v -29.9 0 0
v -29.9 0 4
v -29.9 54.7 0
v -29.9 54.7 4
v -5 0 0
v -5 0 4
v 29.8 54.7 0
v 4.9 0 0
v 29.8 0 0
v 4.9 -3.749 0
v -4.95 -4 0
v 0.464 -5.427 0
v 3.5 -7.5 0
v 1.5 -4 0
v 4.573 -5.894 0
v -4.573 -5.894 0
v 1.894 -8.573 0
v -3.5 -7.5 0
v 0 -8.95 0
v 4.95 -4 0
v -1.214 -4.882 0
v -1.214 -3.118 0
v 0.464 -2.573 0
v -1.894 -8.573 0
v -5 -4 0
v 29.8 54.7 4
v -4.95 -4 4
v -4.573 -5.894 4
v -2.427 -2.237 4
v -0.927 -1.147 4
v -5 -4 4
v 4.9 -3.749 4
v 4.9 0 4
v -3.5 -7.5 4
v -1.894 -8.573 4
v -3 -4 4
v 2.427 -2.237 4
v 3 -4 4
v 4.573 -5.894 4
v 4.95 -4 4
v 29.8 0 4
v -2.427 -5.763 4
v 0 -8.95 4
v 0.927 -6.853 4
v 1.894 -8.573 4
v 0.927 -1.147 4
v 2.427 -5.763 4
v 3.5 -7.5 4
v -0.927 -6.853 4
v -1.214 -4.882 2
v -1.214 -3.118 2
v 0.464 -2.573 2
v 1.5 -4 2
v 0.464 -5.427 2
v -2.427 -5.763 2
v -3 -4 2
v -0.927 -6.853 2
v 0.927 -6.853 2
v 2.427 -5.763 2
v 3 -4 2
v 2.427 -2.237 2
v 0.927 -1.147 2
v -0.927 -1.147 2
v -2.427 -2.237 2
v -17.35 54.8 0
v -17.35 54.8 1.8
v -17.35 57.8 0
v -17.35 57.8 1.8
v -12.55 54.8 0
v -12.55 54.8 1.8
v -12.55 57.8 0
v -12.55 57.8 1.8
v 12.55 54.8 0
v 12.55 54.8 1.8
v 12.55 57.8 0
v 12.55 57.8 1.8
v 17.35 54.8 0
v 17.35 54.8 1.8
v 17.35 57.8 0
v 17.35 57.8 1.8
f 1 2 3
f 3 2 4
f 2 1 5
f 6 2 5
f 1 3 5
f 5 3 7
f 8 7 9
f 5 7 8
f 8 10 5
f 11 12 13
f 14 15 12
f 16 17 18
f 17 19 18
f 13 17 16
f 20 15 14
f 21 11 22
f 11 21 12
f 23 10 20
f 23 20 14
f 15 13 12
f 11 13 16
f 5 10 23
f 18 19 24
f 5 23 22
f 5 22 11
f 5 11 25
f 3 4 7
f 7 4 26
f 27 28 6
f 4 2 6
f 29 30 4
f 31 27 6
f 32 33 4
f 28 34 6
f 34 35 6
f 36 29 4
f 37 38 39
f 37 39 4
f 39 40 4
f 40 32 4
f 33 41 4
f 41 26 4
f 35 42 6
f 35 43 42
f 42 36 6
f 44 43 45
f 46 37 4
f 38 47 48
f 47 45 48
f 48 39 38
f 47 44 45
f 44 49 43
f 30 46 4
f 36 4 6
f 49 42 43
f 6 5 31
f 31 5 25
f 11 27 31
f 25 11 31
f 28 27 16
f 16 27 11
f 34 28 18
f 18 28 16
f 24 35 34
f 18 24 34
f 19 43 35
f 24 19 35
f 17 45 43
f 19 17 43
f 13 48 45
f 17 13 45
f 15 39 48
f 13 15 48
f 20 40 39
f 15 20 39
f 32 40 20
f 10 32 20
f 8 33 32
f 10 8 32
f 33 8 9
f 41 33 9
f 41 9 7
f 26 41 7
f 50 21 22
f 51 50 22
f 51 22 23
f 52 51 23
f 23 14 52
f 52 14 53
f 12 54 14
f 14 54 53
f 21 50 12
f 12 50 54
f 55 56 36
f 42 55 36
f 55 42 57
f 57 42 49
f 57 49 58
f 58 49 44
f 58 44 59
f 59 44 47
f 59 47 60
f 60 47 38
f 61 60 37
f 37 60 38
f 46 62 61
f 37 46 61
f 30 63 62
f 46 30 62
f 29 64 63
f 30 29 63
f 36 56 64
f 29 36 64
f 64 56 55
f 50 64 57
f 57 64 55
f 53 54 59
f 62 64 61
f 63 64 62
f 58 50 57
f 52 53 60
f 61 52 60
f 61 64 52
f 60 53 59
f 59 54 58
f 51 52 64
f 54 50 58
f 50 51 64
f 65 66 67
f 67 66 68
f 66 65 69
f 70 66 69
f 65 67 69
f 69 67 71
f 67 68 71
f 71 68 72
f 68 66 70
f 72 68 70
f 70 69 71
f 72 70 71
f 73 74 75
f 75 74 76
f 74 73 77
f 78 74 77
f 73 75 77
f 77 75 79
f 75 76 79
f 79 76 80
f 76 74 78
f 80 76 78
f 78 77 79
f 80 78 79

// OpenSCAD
// file: BatteryBoxCover.scad
/**
 * Module: Battery Box Cover
 * Description:
 *     Battery Box Cover
 */
module BatteryBoxCover(batteryDiameter=15, batteryHeight=55, cThickness = 4, tabThickness = 2, screwDiameter =3, headDiameter=6, mountWidth=10, tabWidth=5, numBatteries = 4, rim = .5, tolerance=0.1)
{
	
	width = batteryDiameter * numBatteries + rim;
	length = batteryHeight + rim;

	echo(width);

	module batteryTab()
	{
		translate([-(tabWidth - tolerance)/2,0,0])
			cube(center=false, size=[tabWidth - tolerance, 3, cThickness-tabThickness-tolerance]);
	}

	module screwMount()
	{

		difference()
		{
			union()
			{
				translate([0,mountWidth/2,0])
					cylinder(cThickness, d=mountWidth-tolerance);

				translate([-mountWidth/2,0,0])
					cube(center=false, size=[mountWidth-tolerance,mountWidth/2,cThickness]);
			}
			translate([0,5,cThickness/2])
				cylinder(cThickness/2, d=headDiameter);
			translate([0,5,-1])
				cylinder(cThickness+2, d=screwDiameter);
		}
	}

	translate([-width/2, 0,0])
	{
		union()
		{
			// Main Cover
			cube(center=false, size=[width - tolerance, length - tolerance, cThickness]);

			// Screw Mount
			translate([width/2,1,0])
				mirror([0,1,0])
					screwMount();

			// Tabs
			translate([width/4,length,0])
				batteryTab();
			translate([3*width/4,length,0])
				batteryTab();
		}
	}
}
//BatteryBoxCover();

module BatteryBoxCoverCavity(batteryHeight=55, numBatteries = 5)
{
	mountWidth=20;
	cThickness=4;
	union()
	{
		scale([1.005, 1.01, 1.01])
			BatteryBoxCover(batteryHeight=batteryHeight, numBatteries=numBatteries);
		translate([0,-4,0])
			union()
			{
				cylinder(cThickness, d=mountWidth/2);
				mirror([0,0,1])
					cylinder(cThickness*2, d=3);
			}
	}
}

//BatteryBoxCoverCavity();
// main file
include <BatteryBoxCover.scad>

module PrintableBoxCover()
{
	BatteryBoxCover(rim = -0.2, tabWidth=4.9, tabThickness=2.1);
}
PrintableBoxCover();
